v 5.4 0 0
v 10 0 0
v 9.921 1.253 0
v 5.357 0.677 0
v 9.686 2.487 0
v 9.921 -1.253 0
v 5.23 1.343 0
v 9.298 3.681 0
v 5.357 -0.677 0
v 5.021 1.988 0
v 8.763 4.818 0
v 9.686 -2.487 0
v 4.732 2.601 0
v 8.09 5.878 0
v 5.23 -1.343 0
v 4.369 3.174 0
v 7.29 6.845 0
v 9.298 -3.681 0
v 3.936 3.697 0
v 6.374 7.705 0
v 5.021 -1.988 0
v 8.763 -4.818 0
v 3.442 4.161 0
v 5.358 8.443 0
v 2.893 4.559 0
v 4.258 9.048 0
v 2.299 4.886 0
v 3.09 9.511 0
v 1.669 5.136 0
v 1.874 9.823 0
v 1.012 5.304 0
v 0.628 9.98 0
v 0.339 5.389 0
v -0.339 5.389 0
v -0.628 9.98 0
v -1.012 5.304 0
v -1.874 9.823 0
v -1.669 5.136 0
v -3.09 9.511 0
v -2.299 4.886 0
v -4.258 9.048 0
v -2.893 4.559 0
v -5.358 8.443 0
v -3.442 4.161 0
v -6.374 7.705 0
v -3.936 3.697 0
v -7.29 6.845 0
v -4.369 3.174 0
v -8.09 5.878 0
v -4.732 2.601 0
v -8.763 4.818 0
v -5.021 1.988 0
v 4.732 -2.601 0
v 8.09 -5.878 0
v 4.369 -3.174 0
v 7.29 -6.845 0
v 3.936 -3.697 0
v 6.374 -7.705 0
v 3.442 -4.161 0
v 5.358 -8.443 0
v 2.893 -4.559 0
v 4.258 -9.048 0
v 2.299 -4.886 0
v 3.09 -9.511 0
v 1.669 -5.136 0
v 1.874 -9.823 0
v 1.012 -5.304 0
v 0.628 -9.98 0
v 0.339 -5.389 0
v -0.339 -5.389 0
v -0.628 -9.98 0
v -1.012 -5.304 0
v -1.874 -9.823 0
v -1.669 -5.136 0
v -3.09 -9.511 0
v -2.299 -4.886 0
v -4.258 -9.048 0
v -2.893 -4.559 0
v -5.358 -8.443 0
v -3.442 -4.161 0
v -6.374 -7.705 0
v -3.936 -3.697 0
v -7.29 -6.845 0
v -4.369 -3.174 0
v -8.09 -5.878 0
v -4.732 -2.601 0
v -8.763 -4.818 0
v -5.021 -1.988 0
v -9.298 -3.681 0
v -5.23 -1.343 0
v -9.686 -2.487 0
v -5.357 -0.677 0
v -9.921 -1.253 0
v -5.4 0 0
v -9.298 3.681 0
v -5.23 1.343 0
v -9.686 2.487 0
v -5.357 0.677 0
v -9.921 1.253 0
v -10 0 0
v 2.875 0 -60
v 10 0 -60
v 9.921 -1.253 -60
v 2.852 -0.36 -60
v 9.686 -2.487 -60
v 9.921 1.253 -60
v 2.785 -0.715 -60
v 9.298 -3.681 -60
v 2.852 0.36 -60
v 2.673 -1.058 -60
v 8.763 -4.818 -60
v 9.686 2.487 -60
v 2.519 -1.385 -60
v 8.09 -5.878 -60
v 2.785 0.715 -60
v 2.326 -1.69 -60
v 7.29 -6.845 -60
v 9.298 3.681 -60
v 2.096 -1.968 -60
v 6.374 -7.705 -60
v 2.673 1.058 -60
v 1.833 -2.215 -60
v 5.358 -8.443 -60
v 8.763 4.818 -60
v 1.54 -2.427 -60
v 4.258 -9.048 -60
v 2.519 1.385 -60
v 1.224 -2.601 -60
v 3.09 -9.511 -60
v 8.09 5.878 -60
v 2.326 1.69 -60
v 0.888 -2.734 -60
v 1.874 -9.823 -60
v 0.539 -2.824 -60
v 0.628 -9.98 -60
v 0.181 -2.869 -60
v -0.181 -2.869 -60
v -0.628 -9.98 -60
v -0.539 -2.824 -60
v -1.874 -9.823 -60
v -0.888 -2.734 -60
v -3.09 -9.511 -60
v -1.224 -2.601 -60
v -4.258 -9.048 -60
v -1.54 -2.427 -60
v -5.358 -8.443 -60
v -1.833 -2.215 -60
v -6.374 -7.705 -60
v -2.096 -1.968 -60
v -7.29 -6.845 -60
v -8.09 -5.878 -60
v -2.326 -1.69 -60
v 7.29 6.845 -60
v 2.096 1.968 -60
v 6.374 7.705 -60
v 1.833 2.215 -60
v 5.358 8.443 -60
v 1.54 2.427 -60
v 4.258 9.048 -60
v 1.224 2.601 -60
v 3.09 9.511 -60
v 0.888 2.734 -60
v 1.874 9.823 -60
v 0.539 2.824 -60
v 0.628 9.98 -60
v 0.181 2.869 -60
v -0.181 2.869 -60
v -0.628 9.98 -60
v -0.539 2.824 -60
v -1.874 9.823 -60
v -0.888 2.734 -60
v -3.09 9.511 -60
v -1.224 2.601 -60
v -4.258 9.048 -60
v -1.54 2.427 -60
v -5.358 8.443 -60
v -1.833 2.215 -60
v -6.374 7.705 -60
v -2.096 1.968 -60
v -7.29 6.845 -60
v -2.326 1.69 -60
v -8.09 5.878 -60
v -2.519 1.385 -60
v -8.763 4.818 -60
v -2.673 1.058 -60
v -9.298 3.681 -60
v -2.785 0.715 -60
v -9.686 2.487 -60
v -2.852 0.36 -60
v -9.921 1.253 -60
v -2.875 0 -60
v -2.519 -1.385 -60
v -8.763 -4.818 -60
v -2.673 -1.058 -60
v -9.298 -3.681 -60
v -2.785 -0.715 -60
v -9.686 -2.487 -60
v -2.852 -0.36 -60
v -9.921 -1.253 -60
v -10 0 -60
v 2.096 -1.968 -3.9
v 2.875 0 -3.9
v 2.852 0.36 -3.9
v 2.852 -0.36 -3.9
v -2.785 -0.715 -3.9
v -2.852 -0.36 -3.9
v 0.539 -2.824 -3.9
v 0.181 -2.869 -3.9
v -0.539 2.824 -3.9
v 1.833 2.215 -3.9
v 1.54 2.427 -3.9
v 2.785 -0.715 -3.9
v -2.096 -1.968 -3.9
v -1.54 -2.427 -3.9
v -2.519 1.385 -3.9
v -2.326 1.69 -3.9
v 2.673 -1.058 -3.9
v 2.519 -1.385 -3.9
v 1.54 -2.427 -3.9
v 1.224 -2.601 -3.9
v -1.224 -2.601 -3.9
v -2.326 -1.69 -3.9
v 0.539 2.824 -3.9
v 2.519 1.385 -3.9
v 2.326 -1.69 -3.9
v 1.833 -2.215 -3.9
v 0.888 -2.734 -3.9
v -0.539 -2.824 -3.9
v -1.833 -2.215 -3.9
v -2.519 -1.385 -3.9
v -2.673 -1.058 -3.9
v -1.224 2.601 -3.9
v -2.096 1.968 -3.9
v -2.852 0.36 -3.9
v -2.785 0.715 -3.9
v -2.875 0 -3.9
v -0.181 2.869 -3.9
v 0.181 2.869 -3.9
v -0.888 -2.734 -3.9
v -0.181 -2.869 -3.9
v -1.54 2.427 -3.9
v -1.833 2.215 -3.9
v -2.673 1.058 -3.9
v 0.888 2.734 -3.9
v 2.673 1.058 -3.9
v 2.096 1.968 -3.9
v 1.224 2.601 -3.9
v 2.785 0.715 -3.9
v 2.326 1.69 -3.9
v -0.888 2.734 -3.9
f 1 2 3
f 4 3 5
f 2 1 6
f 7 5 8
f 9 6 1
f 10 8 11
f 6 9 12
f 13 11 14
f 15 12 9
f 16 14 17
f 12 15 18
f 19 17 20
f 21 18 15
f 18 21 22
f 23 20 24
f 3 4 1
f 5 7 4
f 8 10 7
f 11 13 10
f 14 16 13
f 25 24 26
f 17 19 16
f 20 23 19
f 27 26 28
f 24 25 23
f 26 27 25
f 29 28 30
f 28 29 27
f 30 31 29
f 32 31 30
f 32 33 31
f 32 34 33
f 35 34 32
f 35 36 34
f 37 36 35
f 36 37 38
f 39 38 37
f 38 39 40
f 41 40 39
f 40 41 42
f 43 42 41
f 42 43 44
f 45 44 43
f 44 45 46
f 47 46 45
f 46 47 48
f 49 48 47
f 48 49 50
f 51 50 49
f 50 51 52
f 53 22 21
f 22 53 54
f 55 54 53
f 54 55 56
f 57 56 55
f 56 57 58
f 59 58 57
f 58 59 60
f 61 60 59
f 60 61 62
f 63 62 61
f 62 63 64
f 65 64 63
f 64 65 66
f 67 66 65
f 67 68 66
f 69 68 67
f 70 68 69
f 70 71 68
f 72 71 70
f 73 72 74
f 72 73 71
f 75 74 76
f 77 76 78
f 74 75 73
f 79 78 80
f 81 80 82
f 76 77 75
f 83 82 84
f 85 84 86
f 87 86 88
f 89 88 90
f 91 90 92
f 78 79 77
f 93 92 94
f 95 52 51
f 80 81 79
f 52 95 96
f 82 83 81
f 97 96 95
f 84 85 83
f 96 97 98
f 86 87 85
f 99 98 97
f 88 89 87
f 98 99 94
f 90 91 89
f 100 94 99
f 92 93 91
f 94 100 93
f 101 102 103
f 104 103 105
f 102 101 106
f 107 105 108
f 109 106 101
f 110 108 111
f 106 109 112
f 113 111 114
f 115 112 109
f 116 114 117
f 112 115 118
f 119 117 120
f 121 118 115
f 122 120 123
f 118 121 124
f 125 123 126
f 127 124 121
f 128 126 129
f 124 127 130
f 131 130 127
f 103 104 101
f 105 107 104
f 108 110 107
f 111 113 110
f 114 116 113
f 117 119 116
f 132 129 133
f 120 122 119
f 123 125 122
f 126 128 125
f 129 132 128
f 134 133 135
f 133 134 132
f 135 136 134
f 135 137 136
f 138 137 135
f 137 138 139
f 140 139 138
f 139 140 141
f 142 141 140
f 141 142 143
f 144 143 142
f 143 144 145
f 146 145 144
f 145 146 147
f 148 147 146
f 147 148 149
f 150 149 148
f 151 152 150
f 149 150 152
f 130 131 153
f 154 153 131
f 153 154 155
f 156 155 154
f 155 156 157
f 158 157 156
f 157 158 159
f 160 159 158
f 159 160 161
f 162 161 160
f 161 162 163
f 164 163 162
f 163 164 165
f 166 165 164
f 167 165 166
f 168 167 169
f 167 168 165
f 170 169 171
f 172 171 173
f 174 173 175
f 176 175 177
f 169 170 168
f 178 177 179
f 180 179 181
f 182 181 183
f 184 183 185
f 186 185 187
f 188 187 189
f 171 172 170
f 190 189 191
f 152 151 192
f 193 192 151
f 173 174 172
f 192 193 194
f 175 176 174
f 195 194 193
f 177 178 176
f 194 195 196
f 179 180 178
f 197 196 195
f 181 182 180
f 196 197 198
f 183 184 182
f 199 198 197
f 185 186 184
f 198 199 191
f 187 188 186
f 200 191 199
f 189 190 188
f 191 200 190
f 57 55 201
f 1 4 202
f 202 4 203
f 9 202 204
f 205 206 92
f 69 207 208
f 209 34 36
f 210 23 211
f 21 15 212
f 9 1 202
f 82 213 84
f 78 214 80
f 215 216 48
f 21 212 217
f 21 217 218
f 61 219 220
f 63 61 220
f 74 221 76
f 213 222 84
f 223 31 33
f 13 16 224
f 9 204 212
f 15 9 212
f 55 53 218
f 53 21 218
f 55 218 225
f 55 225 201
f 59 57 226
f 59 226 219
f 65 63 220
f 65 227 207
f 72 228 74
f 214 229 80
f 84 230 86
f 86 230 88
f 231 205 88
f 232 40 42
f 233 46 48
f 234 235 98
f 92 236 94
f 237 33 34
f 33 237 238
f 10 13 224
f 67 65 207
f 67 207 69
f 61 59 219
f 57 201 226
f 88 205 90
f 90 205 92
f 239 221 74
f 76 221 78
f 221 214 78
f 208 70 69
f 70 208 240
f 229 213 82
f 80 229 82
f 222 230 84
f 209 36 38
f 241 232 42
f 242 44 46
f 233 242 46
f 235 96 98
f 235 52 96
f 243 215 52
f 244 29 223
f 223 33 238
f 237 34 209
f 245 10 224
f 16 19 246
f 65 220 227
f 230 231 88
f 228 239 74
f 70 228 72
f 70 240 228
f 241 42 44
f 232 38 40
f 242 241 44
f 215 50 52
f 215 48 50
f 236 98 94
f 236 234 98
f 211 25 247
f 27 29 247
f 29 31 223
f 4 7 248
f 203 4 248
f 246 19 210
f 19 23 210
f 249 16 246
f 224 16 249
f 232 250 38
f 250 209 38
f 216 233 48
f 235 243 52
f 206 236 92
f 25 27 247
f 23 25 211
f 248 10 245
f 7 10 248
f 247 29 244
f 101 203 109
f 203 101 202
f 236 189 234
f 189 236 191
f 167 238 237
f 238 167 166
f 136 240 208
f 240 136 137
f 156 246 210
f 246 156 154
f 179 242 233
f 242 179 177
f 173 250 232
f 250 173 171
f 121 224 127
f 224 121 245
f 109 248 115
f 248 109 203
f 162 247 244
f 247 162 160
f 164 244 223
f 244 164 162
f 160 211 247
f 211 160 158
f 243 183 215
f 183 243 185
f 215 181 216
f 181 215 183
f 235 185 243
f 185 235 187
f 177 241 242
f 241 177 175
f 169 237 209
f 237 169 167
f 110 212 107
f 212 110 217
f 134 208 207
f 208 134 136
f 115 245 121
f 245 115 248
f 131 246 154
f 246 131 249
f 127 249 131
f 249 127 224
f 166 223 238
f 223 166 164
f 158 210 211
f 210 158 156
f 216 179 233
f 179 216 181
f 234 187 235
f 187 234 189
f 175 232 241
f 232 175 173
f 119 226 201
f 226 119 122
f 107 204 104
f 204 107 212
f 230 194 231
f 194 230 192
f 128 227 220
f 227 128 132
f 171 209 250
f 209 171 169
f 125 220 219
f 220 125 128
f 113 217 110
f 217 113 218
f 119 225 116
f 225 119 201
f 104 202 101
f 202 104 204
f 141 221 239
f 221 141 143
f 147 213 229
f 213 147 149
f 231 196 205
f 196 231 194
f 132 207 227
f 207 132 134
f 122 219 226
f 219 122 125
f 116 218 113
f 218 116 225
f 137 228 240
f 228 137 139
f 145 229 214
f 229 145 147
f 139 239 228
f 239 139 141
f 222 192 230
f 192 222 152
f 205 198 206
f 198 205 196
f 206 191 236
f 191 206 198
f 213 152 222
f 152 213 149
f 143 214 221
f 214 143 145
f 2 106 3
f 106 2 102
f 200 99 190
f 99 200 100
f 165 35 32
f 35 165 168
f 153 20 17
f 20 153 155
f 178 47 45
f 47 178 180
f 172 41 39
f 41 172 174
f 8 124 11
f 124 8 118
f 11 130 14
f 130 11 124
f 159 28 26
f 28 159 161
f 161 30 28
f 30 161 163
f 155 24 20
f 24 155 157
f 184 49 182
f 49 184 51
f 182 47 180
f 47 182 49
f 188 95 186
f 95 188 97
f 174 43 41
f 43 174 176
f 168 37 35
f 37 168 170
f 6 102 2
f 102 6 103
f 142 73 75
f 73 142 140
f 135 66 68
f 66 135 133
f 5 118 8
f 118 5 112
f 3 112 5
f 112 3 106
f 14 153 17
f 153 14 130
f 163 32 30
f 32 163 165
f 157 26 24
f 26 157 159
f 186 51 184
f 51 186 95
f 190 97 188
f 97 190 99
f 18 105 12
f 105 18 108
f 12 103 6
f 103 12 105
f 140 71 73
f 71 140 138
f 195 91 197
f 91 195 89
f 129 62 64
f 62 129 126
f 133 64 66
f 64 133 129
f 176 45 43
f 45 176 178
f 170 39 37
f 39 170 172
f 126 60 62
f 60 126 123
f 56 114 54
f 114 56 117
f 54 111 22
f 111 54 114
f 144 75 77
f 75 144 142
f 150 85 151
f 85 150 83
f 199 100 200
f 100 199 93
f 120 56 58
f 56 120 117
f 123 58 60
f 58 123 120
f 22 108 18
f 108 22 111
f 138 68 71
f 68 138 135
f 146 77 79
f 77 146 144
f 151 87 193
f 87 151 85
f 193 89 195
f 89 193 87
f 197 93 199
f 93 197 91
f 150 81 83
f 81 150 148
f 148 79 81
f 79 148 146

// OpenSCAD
$fn = 50;


difference() {
	union() {
		translate(v = [0, 0, -60.0000000000]) {
			cylinder(h = 60, r = 10.0000000000);
		}
	}
	union() {
		translate(v = [0, 0, 0]) {
			rotate(a = [0, 0, 0]) {
				difference() {
					union() {
						#translate(v = [0, 0, -60.0000000000]) {
							cylinder(h = 60, r = 2.6000000000);
						}
						#translate(v = [0, 0, -3.9000000000]) {
							cylinder(h = 3.9000000000, r1 = 2.8750000000, r2 = 5.4000000000);
						}
						#translate(v = [0, 0, -60.0000000000]) {
							cylinder(h = 60, r = 2.8750000000);
						}
						#translate(v = [0, 0, -60.0000000000]) {
							cylinder(h = 60, r = 2.6000000000);
						}
					}
					union();
				}
			}
		}
	}
}
